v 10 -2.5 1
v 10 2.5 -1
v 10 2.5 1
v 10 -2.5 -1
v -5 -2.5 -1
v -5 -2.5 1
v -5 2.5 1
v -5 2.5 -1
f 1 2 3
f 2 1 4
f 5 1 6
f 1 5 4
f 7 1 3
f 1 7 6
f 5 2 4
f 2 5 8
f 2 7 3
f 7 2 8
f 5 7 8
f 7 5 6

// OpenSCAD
// Define the geometric part
module geometric_part() {
    difference() {
        // Base shape: a trapezoidal prism with a slanted edge and tapering thickness
        hull() {
            // Define the bottom face of the trapezoid
            translate([0, 0, 0]) cube([10, 5, 2], center = true);
            translate([5, 0, 0]) cube([10, 5, 2], center = true);
        }
        
        // Add a slanted edge and tapering thickness
        translate([0, 0, 0]) {
            polyhedron(
                points = [
                    [0, 0, 0], [10, 0, 0], [10, 5, 0], [0, 5, 0], // Bottom face
                    [2, 0, 2], [8, 0, 2], [8, 5, 2], [2, 5, 2]  // Top face
                ],
                faces = [
                    [0, 1, 5, 4], [1, 2, 6, 5], [2, 3, 7, 6], [3, 0, 4, 7], // Side faces
                    [0, 1, 2, 3], // Bottom face
                    [4, 5, 6, 7]  // Top face
                ]
            );
        }
    }
}

// Render the part
geometric_part();
